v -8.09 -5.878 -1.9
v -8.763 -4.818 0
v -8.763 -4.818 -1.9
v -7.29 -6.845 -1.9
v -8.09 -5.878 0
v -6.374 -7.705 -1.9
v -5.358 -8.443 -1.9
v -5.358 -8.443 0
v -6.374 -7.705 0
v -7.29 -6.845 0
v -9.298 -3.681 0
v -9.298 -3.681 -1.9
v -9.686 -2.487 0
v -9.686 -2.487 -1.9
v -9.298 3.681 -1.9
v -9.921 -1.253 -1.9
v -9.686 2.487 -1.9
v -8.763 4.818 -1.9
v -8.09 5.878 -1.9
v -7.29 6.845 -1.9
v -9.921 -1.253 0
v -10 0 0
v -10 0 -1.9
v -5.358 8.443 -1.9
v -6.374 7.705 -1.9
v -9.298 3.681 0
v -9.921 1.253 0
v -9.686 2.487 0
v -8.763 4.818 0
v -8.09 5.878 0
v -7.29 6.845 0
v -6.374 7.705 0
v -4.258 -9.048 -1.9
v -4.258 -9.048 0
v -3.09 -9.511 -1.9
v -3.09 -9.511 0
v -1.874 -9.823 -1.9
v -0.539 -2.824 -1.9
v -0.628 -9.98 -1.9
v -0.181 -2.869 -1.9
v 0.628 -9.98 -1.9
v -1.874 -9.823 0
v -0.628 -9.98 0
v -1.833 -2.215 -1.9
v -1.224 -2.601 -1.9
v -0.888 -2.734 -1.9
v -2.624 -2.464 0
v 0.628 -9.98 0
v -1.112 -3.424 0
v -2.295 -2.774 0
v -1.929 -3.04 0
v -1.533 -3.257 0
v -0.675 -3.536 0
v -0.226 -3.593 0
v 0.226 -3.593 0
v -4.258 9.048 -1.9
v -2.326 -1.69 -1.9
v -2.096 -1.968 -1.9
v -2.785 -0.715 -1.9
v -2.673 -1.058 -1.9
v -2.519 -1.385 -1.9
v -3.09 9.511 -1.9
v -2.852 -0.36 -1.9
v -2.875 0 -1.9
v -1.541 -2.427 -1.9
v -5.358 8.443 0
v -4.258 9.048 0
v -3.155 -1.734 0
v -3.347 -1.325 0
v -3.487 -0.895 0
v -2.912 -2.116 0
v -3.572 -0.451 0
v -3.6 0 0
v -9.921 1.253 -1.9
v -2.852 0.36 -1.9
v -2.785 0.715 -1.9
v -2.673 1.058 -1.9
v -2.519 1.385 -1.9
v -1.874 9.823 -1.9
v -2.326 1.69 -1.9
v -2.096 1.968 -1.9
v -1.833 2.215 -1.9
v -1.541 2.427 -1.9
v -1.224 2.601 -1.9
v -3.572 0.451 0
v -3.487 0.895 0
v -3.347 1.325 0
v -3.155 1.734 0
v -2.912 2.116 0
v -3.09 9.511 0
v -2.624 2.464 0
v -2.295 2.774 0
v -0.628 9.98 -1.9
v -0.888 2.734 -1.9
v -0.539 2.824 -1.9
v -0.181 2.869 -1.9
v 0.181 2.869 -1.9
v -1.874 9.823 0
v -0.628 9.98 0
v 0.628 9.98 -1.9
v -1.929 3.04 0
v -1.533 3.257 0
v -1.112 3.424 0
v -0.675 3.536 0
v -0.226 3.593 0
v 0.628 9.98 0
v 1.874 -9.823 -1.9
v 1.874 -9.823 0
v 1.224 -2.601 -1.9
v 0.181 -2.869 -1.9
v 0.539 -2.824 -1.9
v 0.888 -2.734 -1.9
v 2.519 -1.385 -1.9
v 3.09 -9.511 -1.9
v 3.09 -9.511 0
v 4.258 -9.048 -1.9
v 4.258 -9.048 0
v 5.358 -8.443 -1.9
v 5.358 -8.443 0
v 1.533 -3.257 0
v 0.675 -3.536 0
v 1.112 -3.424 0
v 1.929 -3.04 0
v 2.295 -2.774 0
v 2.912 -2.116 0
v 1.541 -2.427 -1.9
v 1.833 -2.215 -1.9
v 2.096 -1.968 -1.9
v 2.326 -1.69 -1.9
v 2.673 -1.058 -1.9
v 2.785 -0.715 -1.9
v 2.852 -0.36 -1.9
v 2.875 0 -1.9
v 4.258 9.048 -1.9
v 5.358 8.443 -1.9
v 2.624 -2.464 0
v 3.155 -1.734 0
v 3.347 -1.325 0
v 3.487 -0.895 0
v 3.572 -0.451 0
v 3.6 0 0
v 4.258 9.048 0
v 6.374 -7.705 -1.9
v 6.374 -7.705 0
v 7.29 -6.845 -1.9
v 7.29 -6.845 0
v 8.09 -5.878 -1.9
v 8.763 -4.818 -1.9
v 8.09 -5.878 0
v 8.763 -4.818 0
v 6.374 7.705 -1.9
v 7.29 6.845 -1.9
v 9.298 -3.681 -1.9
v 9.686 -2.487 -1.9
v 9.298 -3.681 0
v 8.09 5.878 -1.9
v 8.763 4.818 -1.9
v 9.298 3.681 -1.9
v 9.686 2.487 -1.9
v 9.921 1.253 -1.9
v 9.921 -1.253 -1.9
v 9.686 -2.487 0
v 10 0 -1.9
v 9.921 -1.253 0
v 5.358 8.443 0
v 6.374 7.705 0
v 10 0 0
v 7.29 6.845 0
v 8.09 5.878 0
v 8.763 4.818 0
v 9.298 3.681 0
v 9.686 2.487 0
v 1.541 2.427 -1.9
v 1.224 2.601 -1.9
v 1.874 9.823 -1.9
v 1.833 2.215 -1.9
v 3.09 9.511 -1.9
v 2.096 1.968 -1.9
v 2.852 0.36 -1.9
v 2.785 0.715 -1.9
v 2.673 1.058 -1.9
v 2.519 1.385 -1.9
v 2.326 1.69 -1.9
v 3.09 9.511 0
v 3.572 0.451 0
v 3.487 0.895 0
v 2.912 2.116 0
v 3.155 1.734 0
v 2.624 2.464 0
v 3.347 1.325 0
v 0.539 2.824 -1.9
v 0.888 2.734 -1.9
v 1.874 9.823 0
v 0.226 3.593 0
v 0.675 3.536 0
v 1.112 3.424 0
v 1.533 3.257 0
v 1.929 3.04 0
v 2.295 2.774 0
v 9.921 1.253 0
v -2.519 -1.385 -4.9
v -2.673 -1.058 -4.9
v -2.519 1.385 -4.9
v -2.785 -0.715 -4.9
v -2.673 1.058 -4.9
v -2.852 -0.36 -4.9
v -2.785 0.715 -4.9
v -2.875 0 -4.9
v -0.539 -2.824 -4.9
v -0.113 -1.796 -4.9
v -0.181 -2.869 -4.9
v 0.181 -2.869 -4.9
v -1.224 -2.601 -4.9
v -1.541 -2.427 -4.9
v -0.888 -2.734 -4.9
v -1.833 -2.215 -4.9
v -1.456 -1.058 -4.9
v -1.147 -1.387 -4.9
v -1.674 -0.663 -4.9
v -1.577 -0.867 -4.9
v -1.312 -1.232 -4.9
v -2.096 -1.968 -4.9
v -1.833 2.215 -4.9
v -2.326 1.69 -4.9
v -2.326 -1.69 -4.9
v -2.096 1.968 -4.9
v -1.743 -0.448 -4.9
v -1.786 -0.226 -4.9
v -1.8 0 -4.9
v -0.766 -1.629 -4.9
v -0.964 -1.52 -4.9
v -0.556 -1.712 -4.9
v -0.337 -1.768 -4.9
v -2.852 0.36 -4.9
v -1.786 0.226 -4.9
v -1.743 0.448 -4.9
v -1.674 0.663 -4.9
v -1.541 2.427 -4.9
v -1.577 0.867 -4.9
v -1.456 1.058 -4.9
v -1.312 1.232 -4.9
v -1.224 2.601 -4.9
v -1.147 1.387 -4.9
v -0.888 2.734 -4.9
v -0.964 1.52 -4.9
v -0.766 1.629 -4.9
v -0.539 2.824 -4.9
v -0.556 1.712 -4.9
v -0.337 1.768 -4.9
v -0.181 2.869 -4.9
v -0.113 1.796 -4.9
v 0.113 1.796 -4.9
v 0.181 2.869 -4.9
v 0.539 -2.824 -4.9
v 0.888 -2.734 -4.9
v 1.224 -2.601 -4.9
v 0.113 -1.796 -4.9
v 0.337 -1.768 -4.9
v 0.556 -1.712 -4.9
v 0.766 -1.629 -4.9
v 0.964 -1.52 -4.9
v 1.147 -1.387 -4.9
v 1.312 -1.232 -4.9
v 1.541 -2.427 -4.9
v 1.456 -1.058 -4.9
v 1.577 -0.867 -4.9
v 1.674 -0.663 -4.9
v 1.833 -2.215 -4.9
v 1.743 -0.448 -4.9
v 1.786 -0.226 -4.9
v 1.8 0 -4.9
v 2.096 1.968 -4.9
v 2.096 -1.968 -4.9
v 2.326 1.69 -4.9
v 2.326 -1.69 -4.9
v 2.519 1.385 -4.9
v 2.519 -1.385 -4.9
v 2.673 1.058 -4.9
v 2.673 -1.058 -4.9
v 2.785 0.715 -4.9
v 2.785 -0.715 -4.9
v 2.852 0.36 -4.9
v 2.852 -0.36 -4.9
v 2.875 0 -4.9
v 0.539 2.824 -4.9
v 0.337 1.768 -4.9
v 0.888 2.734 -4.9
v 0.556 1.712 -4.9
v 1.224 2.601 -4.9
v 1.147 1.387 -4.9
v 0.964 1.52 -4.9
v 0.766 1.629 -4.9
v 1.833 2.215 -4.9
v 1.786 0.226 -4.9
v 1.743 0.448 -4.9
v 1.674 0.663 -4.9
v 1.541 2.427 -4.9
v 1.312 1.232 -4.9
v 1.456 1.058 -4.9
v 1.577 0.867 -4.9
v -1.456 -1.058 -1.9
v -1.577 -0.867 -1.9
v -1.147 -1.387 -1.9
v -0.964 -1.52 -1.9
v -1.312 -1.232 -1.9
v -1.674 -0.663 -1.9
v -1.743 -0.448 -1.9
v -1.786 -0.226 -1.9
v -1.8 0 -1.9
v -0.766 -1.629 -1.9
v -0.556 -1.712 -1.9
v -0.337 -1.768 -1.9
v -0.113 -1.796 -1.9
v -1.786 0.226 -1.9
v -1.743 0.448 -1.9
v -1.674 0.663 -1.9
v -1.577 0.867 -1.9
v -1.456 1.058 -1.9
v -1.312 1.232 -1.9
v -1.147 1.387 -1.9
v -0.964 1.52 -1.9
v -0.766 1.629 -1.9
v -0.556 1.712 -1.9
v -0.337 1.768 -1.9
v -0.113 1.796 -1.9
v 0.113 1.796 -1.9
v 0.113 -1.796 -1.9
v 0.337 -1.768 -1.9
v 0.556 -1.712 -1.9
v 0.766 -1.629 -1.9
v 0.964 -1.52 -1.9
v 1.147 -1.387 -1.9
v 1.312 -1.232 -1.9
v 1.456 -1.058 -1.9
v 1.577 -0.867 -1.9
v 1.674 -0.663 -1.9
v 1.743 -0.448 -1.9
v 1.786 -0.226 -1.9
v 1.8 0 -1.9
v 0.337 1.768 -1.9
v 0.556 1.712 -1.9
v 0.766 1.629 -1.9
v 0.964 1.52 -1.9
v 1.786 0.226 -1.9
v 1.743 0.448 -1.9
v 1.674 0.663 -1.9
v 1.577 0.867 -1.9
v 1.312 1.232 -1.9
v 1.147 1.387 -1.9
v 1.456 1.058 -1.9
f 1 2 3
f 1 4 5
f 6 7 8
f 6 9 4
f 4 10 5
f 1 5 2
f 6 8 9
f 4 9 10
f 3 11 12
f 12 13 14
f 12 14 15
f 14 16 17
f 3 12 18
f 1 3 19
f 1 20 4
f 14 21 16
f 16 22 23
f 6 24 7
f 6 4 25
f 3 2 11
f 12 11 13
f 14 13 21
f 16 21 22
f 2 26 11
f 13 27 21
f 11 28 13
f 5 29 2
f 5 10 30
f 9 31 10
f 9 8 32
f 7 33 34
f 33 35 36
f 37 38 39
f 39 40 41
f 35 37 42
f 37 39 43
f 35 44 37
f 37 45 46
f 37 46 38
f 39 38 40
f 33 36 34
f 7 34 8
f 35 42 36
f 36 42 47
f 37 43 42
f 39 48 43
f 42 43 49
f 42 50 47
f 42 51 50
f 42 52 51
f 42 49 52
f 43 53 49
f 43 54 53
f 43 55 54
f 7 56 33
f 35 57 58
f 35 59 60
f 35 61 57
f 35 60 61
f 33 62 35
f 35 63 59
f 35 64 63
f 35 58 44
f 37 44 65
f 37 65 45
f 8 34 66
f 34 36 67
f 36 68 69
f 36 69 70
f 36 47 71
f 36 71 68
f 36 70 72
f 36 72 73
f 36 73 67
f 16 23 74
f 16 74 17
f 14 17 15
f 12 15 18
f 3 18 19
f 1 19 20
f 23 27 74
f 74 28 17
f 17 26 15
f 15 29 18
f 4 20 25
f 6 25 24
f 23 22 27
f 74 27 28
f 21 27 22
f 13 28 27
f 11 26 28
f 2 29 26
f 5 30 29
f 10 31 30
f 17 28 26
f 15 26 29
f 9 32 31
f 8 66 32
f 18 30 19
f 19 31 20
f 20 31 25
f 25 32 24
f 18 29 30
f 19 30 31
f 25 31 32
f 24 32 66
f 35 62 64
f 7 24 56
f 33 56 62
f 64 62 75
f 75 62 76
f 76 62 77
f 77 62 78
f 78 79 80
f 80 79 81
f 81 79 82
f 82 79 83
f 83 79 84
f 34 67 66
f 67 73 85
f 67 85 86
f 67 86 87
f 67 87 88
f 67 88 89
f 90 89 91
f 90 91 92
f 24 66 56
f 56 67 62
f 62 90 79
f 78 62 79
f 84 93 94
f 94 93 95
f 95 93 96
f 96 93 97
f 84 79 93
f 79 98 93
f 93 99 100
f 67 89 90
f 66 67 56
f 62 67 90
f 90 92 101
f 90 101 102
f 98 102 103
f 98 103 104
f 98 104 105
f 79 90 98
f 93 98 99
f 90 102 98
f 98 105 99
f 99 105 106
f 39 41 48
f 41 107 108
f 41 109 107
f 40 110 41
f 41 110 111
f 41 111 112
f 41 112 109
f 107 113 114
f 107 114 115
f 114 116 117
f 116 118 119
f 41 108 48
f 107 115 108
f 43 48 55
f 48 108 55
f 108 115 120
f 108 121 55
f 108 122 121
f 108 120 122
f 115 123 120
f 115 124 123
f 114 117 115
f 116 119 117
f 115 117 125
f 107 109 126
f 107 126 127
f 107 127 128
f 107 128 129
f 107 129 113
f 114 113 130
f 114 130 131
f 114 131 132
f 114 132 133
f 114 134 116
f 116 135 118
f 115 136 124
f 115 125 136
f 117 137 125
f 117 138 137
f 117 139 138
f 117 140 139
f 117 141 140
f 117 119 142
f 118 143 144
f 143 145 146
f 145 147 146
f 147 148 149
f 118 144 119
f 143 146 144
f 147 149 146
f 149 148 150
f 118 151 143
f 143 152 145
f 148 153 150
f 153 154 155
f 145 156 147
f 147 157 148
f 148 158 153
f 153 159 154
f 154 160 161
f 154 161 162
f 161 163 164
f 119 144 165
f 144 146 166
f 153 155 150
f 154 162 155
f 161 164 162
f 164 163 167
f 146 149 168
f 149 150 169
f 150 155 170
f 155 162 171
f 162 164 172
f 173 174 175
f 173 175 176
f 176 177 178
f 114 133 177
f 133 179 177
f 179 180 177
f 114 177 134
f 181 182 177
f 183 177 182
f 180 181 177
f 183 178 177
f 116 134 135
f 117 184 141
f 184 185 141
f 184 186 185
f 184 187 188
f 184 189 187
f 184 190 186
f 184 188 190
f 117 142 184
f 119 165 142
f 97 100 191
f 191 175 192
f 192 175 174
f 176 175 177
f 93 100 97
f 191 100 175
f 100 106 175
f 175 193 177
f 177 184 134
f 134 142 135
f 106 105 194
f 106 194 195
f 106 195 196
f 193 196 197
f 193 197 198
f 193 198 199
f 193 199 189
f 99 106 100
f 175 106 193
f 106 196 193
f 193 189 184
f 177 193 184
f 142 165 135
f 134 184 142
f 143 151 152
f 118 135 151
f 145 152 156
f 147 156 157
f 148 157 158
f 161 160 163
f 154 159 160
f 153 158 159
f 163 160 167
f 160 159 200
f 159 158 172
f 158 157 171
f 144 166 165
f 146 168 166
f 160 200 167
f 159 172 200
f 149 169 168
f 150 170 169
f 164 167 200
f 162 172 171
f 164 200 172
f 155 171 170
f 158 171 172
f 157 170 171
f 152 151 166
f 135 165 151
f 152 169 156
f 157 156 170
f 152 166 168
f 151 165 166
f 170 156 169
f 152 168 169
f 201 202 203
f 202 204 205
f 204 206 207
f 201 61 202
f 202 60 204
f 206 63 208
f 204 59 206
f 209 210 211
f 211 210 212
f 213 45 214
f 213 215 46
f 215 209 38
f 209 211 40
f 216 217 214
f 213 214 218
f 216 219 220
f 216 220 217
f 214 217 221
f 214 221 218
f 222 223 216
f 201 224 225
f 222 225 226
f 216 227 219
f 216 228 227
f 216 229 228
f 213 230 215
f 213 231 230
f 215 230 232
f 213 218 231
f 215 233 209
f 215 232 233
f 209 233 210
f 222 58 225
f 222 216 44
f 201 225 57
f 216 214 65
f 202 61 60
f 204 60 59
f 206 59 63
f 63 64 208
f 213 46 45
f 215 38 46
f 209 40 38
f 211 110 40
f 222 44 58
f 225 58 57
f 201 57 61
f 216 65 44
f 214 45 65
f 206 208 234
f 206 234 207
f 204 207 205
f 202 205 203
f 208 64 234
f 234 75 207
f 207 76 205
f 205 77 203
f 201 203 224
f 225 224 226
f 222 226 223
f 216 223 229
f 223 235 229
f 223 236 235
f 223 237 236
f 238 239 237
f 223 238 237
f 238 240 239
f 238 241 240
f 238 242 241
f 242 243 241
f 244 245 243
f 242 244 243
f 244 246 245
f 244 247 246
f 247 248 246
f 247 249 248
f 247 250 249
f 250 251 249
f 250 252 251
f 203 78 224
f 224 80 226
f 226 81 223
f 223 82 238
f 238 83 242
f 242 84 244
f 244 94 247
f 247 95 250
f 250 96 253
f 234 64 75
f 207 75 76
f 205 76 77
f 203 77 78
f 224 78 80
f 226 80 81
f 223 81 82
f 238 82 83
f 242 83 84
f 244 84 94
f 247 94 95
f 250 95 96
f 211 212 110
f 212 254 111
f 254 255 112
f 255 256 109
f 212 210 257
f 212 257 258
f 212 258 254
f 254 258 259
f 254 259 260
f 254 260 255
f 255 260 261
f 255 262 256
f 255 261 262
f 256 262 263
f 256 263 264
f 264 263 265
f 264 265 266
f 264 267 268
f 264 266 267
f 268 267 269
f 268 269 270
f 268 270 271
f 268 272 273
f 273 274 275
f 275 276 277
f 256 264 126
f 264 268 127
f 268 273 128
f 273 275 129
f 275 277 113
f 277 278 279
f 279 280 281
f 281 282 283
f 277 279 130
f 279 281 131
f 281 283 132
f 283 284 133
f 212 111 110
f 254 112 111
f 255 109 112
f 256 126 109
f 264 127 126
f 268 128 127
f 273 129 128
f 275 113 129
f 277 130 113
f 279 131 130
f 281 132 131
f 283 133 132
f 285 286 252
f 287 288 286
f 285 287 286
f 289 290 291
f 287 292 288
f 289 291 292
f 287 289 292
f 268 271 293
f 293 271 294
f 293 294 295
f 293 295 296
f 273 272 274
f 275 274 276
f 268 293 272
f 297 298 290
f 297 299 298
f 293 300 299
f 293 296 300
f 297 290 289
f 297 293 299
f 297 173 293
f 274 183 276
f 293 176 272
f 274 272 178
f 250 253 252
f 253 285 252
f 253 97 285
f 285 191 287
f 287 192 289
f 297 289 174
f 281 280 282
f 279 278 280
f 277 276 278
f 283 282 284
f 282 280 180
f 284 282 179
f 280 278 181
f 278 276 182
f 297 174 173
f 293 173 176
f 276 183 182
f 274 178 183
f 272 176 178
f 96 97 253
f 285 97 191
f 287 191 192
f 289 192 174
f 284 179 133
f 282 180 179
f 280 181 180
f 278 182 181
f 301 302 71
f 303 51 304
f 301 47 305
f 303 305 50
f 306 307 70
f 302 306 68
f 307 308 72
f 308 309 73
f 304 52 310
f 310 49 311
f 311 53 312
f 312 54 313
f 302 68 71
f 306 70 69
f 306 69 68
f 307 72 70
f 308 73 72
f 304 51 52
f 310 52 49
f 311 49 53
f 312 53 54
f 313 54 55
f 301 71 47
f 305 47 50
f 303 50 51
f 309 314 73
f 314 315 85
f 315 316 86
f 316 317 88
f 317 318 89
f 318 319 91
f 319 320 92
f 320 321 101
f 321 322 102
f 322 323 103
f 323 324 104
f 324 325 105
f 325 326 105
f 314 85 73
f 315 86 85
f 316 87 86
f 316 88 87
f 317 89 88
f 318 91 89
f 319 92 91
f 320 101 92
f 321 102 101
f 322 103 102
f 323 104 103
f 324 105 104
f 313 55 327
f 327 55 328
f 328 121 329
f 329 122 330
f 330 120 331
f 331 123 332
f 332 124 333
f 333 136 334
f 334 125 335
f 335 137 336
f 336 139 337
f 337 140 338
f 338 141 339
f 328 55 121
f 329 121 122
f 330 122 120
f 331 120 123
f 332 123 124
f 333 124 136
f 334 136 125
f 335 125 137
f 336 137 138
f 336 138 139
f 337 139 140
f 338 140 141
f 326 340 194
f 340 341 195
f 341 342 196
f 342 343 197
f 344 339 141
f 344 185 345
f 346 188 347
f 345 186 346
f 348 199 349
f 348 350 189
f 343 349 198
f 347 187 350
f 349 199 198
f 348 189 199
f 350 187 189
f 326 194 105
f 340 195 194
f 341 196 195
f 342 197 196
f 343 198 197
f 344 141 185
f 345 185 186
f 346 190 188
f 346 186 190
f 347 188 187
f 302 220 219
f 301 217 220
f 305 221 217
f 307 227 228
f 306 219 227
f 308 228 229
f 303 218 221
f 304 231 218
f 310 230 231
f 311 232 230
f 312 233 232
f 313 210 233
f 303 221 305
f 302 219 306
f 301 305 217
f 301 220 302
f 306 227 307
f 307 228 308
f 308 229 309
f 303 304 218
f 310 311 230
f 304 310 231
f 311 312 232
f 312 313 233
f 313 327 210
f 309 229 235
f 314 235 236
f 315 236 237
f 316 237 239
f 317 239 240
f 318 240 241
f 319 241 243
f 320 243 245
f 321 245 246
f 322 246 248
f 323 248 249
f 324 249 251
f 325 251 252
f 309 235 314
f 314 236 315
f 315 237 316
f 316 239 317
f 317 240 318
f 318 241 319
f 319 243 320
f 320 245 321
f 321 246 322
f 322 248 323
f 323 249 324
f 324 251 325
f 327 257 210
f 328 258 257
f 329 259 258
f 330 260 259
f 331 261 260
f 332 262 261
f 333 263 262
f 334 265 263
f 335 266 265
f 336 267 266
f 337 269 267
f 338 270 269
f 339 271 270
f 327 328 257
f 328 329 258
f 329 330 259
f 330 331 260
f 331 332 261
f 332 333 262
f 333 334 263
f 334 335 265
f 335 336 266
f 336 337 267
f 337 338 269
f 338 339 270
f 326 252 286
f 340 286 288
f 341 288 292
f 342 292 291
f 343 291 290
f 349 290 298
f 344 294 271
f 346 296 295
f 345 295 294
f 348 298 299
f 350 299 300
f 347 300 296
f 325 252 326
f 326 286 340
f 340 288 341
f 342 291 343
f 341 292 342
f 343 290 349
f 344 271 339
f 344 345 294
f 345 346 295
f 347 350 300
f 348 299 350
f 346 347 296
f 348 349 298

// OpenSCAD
$fn = 50;

difference() {
	union() {
		translate(v = [0, 0, -1.9]) {
			cylinder(h = 1.9, r = 10.0);
		}
		#translate(v = [0, 0, -4.9]) {
			cylinder(h = 4.9, r = 2.875);
		}
	}
	union() {
		translate(v = [0, 0, 0]) {
			rotate(a = [0, 0, 0]) {
				difference() {
					union() {
						translate(v = [0, 0, -4.9]) {
							cylinder(h = 4.9, r = 1.5);
						}
						translate(v = [0, 0, -1.9]) {
							cylinder(h = 1.9, r1 = 1.8, r2 = 3.6);
						}
						translate(v = [0, 0, -4.9]) {
							cylinder(h = 4.9, r = 1.8);
						}
						translate(v = [0, 0, -4.9]) {
							cylinder(h = 4.9, r = 1.5);
						}
					}
					union();
				}
			}
		}
	}
}
